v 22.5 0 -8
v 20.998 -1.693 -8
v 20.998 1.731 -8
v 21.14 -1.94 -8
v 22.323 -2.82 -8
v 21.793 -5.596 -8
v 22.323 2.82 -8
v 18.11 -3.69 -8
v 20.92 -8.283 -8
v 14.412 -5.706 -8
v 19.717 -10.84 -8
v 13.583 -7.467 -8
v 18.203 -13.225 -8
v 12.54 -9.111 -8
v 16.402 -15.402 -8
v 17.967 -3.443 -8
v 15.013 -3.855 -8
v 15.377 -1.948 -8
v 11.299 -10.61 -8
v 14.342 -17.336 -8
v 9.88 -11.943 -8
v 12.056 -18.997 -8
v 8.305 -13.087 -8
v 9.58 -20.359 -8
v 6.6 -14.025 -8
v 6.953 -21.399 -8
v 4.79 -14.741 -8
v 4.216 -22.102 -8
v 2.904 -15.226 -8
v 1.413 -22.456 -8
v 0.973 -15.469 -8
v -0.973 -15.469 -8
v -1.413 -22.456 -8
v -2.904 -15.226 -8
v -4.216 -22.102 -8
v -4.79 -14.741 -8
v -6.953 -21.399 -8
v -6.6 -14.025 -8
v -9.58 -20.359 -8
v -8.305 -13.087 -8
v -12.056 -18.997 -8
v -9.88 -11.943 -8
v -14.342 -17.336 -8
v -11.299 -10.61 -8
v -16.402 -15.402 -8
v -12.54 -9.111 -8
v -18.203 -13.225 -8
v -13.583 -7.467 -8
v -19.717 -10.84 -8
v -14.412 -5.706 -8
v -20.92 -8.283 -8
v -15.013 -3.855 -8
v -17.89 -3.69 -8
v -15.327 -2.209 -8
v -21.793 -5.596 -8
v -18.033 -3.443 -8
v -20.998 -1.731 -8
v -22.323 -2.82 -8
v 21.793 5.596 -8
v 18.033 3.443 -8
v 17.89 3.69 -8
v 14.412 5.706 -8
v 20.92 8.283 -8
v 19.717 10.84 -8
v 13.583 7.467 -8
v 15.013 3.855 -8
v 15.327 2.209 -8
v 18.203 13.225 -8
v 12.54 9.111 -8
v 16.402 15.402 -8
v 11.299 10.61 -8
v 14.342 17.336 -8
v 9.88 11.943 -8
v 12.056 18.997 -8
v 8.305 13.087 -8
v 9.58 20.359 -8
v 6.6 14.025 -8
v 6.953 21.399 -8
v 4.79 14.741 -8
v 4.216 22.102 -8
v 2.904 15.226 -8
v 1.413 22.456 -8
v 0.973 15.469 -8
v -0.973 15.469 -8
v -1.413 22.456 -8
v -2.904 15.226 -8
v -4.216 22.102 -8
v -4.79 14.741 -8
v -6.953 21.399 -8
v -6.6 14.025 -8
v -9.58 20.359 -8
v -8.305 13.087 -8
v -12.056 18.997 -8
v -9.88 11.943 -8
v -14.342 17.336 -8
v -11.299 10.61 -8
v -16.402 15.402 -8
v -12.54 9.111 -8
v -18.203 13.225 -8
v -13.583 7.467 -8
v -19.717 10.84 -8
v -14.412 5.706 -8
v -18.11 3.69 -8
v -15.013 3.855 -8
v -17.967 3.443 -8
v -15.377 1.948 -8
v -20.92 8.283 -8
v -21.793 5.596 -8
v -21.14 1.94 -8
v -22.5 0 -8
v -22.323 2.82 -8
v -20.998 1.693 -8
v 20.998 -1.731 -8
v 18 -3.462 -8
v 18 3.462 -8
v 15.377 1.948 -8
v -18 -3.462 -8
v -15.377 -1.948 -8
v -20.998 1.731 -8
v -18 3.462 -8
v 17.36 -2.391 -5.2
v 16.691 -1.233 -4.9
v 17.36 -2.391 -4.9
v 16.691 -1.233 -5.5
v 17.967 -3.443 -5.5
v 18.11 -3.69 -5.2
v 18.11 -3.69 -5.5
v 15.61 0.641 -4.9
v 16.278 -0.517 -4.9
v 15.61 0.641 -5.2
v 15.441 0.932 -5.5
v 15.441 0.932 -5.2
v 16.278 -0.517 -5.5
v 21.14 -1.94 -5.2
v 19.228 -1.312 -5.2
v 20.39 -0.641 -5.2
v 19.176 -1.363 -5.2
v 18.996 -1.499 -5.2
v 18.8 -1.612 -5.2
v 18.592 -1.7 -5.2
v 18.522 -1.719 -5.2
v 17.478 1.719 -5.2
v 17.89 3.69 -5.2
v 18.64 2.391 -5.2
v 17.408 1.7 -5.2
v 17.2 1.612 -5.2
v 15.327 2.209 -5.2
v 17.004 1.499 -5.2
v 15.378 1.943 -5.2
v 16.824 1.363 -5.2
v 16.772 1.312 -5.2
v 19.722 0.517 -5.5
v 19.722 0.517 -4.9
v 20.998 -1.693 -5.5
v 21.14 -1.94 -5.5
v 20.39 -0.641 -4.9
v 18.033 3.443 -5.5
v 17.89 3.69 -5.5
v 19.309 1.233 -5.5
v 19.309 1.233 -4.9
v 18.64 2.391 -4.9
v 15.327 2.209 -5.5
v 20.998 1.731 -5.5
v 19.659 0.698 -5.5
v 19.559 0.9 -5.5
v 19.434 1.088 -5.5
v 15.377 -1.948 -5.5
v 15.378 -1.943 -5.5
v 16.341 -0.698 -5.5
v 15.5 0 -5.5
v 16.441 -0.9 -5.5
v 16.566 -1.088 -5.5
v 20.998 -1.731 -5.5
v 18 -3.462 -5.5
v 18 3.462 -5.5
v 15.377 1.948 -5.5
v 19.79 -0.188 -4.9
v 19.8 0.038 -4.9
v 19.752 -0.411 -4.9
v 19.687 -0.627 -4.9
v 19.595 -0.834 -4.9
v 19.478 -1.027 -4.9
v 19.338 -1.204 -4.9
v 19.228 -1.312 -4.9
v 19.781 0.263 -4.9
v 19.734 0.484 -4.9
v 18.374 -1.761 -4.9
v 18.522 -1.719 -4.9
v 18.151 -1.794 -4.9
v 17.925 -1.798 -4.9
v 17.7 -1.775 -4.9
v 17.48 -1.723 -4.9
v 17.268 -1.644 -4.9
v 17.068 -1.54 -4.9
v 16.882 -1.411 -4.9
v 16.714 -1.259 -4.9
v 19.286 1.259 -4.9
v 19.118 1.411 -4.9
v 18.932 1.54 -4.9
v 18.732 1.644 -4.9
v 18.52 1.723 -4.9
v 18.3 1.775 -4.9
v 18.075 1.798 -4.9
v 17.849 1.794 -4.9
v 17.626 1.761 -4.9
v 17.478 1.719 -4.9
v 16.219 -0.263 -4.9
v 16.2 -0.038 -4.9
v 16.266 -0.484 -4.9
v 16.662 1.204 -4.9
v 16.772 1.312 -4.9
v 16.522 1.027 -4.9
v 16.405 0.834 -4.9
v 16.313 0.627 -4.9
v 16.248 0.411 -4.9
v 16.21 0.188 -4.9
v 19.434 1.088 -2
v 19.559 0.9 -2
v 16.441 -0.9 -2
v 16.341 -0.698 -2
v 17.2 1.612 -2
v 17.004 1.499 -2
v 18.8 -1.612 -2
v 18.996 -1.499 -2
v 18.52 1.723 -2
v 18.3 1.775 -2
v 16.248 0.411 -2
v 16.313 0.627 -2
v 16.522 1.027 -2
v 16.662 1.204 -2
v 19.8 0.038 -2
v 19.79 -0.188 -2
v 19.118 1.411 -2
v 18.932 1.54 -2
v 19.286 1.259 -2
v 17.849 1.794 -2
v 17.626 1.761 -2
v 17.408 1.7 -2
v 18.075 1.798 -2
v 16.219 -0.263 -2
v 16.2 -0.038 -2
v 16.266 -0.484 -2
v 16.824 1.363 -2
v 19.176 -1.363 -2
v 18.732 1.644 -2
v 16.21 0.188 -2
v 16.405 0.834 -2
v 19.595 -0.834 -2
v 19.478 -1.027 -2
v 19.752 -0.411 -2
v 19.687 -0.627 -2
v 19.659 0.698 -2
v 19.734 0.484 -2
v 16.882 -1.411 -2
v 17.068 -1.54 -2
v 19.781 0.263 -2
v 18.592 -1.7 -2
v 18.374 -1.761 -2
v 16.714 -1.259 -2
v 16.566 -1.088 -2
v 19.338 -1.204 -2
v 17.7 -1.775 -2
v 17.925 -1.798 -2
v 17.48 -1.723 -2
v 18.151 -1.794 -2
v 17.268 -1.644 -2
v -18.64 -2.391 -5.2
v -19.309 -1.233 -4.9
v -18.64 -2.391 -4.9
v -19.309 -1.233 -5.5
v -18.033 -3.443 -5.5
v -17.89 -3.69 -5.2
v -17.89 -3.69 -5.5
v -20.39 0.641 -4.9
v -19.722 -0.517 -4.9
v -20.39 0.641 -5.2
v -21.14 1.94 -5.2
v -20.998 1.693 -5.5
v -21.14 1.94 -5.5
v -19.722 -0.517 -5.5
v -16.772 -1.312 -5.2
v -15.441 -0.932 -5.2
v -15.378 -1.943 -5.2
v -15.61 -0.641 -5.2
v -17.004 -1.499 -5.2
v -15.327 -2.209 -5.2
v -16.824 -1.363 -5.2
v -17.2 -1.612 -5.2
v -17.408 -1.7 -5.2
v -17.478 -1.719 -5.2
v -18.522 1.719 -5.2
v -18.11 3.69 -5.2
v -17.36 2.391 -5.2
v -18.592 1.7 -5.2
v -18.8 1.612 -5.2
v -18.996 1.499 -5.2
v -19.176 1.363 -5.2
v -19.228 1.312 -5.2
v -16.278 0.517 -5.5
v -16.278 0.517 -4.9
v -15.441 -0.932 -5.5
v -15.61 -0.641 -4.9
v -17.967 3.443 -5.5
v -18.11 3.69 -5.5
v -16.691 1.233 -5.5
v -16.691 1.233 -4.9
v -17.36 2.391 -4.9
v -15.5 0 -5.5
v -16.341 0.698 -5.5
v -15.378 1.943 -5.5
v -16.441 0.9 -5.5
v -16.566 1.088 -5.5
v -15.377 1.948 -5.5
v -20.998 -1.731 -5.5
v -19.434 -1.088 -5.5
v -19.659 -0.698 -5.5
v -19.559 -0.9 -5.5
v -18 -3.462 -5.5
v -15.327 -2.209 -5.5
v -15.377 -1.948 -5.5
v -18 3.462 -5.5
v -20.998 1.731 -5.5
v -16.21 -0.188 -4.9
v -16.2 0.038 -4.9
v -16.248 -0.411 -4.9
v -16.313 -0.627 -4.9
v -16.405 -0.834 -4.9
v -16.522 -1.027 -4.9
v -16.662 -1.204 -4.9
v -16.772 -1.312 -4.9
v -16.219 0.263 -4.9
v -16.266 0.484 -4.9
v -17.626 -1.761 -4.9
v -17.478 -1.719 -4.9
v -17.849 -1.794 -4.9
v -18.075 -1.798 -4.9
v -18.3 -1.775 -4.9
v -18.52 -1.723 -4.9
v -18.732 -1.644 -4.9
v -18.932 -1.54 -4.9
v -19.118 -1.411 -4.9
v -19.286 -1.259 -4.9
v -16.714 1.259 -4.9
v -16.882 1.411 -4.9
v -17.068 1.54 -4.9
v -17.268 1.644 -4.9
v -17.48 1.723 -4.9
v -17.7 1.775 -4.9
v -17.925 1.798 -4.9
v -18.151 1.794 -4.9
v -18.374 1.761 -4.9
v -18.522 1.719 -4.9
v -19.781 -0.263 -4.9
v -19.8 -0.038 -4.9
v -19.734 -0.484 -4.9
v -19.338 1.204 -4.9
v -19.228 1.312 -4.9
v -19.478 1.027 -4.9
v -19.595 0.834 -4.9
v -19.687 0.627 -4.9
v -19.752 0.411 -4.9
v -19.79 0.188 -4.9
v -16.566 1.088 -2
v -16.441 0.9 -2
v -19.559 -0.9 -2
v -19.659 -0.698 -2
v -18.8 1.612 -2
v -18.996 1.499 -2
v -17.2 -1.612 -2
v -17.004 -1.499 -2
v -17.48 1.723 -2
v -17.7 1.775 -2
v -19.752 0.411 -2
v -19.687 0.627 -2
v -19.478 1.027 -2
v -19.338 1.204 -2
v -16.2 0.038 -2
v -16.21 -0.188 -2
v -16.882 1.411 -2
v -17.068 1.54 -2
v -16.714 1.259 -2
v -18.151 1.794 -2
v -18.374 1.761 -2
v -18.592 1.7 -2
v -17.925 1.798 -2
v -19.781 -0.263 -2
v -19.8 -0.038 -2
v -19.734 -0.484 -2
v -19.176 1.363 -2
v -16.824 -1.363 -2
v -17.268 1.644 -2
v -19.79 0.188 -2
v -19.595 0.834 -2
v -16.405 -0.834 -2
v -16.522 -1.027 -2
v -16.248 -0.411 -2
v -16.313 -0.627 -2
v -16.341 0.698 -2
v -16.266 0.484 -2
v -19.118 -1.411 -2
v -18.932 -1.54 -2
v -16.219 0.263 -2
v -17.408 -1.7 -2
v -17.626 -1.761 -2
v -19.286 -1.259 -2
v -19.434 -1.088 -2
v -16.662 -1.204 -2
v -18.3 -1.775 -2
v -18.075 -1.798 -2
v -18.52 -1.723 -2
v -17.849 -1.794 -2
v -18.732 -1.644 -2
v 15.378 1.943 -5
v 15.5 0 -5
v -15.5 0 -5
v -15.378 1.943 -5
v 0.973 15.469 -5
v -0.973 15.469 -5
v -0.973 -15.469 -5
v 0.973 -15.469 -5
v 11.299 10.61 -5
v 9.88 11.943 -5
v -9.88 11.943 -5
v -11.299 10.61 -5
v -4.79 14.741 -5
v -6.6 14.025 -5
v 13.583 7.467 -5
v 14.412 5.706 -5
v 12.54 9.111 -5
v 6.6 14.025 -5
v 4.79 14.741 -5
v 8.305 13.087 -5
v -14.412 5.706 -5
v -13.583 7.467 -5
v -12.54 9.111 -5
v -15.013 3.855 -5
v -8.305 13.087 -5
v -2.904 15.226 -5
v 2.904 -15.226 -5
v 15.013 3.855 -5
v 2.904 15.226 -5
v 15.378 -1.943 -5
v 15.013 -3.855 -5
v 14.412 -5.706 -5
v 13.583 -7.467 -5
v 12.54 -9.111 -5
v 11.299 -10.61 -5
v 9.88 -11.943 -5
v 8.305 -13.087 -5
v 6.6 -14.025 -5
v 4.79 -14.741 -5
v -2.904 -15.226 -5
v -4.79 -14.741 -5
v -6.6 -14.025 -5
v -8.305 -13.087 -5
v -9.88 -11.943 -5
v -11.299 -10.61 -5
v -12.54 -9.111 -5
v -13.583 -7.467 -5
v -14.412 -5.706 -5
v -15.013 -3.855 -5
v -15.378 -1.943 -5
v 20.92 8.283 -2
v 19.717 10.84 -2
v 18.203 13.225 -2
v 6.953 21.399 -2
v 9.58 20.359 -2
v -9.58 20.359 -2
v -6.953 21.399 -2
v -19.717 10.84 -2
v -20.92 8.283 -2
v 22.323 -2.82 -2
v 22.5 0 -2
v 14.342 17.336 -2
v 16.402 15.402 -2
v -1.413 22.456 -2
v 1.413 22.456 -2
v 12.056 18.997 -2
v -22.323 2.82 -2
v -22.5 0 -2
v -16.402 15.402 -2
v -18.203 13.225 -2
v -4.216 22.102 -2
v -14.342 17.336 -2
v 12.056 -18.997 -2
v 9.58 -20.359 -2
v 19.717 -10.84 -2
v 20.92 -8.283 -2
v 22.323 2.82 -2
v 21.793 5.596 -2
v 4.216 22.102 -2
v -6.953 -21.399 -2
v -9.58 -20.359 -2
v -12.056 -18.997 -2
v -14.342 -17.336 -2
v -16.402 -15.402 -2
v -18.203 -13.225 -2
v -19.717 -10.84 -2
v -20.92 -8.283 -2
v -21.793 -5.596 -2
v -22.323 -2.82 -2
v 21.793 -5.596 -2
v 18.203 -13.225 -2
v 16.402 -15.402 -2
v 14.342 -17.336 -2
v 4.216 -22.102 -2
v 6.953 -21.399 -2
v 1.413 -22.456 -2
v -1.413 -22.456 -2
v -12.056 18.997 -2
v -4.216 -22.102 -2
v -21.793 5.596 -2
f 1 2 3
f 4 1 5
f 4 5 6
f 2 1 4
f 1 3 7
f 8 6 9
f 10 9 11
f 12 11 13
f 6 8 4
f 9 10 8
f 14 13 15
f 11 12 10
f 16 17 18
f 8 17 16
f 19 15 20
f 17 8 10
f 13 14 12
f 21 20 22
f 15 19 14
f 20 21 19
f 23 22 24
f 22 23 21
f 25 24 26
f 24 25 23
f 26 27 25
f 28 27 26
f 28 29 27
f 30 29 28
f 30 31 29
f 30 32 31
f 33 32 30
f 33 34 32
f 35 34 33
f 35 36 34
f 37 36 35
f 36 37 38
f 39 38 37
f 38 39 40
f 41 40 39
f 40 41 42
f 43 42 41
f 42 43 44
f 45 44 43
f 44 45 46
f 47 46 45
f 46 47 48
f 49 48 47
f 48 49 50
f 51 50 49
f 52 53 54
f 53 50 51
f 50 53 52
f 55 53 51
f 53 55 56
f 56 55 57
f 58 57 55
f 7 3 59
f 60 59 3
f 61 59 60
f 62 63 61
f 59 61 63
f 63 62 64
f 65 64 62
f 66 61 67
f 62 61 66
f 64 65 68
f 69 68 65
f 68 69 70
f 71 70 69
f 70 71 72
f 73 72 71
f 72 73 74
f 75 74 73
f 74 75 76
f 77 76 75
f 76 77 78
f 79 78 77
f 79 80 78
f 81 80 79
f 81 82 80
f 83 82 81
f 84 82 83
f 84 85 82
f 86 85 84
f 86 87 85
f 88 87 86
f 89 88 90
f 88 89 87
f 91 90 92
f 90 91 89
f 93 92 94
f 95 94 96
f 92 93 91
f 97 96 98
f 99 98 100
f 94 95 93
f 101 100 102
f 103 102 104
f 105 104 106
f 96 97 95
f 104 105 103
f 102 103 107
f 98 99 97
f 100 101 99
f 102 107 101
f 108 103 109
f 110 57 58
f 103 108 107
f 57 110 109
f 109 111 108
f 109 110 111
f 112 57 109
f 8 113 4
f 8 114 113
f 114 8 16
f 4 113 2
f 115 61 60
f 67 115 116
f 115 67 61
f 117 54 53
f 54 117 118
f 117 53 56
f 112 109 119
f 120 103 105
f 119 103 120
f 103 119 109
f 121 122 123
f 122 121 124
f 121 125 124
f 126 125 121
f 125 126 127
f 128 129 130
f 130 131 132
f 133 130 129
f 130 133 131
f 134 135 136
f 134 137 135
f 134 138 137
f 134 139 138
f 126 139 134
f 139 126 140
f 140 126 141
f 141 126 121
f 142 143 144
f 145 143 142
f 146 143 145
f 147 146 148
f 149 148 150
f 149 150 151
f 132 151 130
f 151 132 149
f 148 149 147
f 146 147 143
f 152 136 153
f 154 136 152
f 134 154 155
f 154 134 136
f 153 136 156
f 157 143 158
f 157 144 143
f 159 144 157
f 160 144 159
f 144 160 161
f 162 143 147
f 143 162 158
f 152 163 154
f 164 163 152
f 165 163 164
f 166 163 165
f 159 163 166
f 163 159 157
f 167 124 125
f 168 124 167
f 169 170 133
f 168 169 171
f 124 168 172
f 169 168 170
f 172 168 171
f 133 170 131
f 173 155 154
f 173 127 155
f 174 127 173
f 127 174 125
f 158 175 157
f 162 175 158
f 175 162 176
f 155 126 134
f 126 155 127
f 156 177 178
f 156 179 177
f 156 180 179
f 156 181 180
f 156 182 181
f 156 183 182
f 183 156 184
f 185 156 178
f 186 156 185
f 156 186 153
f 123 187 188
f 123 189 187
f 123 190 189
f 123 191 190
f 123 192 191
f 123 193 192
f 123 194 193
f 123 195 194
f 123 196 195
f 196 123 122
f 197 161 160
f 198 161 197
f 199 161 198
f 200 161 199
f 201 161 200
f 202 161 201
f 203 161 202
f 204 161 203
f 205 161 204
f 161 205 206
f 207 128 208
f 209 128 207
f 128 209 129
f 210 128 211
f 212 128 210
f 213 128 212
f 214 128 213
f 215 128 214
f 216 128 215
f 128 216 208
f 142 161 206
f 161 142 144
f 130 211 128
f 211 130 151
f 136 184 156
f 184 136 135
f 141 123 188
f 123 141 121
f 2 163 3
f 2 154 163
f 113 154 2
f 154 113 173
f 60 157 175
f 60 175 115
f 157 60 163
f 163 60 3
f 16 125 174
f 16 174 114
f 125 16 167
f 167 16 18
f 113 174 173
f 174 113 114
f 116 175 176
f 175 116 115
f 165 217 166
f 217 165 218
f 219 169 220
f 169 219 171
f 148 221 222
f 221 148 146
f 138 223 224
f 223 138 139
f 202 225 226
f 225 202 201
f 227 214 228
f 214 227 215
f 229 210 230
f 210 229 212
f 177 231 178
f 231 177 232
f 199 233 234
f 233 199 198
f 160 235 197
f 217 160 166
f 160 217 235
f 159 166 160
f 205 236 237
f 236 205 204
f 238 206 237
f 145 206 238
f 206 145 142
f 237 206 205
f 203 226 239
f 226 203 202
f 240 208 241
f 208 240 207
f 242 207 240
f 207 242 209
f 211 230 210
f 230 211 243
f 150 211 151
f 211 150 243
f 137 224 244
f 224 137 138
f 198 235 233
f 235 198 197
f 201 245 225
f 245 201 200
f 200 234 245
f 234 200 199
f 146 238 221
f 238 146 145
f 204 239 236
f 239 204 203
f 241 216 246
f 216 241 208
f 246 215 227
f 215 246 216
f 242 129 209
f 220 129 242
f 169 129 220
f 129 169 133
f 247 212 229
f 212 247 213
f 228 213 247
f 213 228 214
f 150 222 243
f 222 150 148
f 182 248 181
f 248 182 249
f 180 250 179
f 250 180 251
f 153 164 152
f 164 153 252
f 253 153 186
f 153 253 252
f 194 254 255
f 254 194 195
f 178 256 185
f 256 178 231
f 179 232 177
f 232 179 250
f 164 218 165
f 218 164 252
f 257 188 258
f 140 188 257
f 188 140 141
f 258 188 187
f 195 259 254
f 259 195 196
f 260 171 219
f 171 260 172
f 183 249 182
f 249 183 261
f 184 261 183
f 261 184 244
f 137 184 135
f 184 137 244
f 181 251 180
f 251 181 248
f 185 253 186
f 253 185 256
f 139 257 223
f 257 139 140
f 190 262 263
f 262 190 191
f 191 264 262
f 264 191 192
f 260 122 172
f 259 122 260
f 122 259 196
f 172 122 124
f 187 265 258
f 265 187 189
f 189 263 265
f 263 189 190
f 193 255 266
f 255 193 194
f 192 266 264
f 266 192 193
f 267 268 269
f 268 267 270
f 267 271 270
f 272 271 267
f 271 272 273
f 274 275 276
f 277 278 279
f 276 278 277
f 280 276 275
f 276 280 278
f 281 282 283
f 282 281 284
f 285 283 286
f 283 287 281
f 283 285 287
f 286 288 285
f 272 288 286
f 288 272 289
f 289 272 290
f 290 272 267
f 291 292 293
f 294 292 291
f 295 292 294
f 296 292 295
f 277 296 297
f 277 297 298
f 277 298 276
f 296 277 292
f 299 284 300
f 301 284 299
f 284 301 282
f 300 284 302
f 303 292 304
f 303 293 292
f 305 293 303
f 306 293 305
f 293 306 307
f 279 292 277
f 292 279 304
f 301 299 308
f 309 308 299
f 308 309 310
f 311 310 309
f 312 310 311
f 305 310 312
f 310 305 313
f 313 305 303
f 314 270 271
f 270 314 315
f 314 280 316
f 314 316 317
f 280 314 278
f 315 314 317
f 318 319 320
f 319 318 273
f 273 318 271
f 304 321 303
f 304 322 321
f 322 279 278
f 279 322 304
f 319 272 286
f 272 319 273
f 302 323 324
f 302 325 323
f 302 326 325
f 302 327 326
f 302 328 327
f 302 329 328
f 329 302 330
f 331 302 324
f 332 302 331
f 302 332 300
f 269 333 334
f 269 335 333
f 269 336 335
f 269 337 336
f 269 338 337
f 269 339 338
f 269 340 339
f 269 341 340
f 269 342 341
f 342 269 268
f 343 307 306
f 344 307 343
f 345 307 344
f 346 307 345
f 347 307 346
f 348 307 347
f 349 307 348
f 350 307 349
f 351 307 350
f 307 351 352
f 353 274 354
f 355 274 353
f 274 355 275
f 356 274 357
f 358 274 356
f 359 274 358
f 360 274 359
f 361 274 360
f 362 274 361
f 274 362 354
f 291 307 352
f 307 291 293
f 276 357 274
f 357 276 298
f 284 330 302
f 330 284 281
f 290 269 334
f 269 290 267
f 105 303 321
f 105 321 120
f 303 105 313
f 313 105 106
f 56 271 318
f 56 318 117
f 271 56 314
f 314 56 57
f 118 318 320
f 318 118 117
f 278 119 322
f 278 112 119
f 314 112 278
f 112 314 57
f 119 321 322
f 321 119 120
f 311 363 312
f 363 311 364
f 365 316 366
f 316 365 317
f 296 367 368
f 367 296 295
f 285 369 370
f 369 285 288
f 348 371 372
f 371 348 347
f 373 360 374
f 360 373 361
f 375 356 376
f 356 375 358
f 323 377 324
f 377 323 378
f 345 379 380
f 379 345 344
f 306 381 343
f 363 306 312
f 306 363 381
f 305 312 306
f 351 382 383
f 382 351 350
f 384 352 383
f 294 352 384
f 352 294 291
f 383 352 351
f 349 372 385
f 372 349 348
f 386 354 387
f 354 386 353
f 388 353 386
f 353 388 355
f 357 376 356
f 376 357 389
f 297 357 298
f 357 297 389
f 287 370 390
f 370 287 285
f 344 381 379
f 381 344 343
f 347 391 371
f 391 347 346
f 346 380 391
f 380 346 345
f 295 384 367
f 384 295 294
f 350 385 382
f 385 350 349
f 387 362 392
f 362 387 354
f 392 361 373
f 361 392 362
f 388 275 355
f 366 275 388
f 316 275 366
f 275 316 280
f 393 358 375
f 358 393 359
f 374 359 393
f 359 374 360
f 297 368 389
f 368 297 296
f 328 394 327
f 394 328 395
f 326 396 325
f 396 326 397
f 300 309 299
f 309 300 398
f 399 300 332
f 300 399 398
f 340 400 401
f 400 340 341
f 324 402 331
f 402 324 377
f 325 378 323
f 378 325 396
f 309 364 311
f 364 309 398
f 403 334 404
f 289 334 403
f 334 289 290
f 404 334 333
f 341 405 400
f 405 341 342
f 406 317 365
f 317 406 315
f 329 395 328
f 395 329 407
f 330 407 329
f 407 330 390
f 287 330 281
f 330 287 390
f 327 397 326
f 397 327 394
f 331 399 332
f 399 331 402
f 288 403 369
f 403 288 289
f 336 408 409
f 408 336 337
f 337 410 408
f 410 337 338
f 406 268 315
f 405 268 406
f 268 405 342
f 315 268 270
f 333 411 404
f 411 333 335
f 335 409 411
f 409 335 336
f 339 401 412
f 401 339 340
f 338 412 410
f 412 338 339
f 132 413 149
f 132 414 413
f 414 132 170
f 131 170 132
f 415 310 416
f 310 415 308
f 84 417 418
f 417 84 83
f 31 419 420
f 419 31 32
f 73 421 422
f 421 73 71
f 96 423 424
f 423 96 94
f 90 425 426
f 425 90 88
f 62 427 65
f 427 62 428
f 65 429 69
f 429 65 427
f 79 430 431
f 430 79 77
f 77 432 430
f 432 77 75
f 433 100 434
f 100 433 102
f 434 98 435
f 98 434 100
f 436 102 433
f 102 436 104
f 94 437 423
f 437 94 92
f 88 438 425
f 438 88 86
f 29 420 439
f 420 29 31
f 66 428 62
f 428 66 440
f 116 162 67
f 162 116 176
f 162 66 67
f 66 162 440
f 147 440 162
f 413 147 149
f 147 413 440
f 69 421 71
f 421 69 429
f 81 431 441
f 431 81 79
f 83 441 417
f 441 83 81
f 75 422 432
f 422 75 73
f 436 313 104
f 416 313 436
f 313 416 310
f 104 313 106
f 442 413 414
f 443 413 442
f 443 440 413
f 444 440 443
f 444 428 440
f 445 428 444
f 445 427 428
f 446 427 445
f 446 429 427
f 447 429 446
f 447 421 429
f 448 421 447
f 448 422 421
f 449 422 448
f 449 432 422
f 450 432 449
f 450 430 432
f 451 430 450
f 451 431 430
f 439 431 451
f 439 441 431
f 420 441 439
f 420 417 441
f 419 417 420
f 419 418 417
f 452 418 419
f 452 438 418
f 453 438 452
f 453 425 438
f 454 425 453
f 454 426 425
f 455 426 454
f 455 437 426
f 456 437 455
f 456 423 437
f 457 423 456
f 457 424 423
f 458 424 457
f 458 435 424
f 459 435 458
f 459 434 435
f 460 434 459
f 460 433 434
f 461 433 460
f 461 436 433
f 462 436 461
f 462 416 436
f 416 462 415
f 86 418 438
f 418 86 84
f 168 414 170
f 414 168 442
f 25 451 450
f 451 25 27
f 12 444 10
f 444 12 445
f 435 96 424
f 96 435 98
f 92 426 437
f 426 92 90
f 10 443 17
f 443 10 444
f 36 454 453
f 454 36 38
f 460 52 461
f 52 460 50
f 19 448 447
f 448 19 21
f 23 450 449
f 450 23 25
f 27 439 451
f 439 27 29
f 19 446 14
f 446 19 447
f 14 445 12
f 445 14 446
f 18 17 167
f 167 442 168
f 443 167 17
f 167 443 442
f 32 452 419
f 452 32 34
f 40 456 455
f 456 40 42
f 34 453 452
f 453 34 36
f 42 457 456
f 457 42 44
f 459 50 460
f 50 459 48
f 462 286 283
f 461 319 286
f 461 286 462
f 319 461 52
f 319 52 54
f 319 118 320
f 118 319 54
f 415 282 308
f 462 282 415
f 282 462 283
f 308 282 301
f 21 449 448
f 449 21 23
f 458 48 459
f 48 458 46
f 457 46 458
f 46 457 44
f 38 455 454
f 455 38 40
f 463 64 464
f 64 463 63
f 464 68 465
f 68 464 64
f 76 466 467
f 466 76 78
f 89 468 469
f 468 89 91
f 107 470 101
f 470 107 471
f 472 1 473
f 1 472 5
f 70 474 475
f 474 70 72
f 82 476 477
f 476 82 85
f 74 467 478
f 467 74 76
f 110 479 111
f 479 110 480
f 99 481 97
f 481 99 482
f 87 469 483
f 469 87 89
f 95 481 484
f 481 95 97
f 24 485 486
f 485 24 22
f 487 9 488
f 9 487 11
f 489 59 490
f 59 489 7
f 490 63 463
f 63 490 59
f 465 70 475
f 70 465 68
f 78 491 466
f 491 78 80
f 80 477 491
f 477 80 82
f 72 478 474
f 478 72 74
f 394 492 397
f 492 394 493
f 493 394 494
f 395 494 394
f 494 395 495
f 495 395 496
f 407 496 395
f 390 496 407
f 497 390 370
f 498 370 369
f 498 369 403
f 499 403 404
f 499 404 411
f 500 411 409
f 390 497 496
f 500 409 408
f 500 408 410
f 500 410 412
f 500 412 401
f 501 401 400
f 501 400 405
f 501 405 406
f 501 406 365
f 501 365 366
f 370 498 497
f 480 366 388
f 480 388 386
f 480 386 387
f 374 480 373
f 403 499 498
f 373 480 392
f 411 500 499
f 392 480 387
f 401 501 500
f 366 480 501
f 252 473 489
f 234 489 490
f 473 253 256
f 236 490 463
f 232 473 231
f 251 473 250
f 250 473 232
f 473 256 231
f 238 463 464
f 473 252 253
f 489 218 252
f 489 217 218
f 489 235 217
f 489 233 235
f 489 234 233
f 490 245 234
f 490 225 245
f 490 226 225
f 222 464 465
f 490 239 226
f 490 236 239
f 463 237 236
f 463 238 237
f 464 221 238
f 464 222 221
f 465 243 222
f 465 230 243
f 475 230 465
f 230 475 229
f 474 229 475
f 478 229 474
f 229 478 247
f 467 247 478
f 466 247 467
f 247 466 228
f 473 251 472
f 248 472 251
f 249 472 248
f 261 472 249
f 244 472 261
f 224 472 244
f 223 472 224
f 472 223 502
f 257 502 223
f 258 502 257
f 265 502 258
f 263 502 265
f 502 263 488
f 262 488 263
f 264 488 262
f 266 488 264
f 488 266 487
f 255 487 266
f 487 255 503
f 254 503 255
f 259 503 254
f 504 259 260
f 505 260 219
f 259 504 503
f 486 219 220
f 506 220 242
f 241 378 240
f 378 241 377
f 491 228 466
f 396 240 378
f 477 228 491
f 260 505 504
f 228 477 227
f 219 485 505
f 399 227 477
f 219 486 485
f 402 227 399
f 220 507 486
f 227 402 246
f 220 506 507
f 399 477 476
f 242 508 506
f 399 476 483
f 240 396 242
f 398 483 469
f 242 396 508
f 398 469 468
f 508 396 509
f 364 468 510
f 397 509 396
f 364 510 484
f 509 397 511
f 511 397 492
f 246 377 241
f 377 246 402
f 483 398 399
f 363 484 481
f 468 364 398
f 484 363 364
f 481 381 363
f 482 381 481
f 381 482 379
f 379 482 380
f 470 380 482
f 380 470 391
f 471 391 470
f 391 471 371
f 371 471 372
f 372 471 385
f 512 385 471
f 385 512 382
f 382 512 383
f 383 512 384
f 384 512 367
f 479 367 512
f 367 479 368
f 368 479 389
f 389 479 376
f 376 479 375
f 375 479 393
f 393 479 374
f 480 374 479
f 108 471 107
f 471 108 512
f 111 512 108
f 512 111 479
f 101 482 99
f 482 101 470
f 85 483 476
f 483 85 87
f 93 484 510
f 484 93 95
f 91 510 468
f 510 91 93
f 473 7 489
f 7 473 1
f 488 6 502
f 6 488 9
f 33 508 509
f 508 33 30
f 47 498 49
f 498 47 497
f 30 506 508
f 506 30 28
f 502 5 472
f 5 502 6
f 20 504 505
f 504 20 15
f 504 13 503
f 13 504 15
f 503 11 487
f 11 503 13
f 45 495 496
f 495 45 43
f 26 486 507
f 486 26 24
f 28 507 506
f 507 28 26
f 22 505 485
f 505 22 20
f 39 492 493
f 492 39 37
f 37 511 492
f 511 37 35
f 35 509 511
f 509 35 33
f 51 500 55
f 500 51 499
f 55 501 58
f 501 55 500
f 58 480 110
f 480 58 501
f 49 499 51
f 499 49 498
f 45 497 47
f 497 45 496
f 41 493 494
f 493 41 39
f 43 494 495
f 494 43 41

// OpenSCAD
$fn = 50;


difference() {
	union() {
		translate(v = [0, 0, -8.0000000000]) {
			cylinder(h = 6, r = 22.5000000000);
		}
	}
	union() {
		translate(v = [18.0000000000, 0, 2.0000000000]) {
			rotate(a = [0, 0, 30.0000000000]) {
				difference() {
					union() {
						translate(v = [0, 0, -10.0000000000]) {
							rotate(a = [0, 0, 0]) {
								difference() {
									union() {
										#translate(v = [-1.7500000000, -3.2500000000, -0.3000000000]) {
											cube(size = [3.5000000000, 6.5000000000, 0.3000000000]);
										}
										#translate(v = [-1.7500000000, -1.7500000000, -0.6000000000]) {
											cube(size = [3.5000000000, 3.5000000000, 0.3000000000]);
										}
										#translate(v = [-1.7500000000, -3.2500000000, 2.5000000000]) {
											cube(size = [3.5000000000, 6.5000000000, 0.3000000000]);
										}
										#translate(v = [-1.7500000000, -1.7500000000, 2.8000000000]) {
											cube(size = [3.5000000000, 3.5000000000, 0.3000000000]);
										}
										#linear_extrude(height = 2.5000000000) {
											polygon(points = [[3.4620000000, 0.0000000000], [1.7310000000, 2.9981799479], [-1.7310000000, 2.9981799479], [-3.4620000000, 0.0000000000], [-1.7310000000, -2.9981799479], [1.7310000000, -2.9981799479]]);
										}
										#translate(v = [-1.7500000000, -3.2500000000, -0.3000000000]) {
											cube(size = [3.5000000000, 6.5000000000, 0.3000000000]);
										}
										#translate(v = [-1.7500000000, -1.7500000000, -0.6000000000]) {
											cube(size = [3.5000000000, 3.5000000000, 0.3000000000]);
										}
										#translate(v = [-1.7500000000, -3.2500000000, 2.5000000000]) {
											cube(size = [3.5000000000, 6.5000000000, 0.3000000000]);
										}
										#translate(v = [-1.7500000000, -1.7500000000, 2.8000000000]) {
											cube(size = [3.5000000000, 3.5000000000, 0.3000000000]);
										}
										#translate(v = [-1.7500000000, -3.2500000000, -0.3000000000]) {
											cube(size = [3.5000000000, 6.5000000000, 0.3000000000]);
										}
										#translate(v = [-1.7500000000, -1.7500000000, -0.6000000000]) {
											cube(size = [3.5000000000, 3.5000000000, 0.3000000000]);
										}
										#translate(v = [-1.7500000000, -3.2500000000, 2.5000000000]) {
											cube(size = [3.5000000000, 6.5000000000, 0.3000000000]);
										}
										#translate(v = [-1.7500000000, -1.7500000000, 2.8000000000]) {
											cube(size = [3.5000000000, 3.5000000000, 0.3000000000]);
										}
									}
									union();
								}
							}
						}
						translate(v = [0, 0, -10.0000000000]) {
							rotate(a = [0, 0, 0]) {
								difference() {
									union() {
										#translate(v = [-1.7500000000, -3.2500000000, -0.3000000000]) {
											cube(size = [3.5000000000, 6.5000000000, 0.3000000000]);
										}
										#translate(v = [-1.7500000000, -1.7500000000, -0.6000000000]) {
											cube(size = [3.5000000000, 3.5000000000, 0.3000000000]);
										}
										#translate(v = [-1.7500000000, -3.2500000000, 2.5000000000]) {
											cube(size = [3.5000000000, 6.5000000000, 0.3000000000]);
										}
										#translate(v = [-1.7500000000, -1.7500000000, 2.8000000000]) {
											cube(size = [3.5000000000, 3.5000000000, 0.3000000000]);
										}
										#linear_extrude(height = 2.5000000000) {
											polygon(points = [[3.4620000000, 0.0000000000], [1.7310000000, 2.9981799479], [-1.7310000000, 2.9981799479], [-3.4620000000, 0.0000000000], [-1.7310000000, -2.9981799479], [1.7310000000, -2.9981799479]]);
										}
										#translate(v = [-1.7500000000, -3.2500000000, -0.3000000000]) {
											cube(size = [3.5000000000, 6.5000000000, 0.3000000000]);
										}
										#translate(v = [-1.7500000000, -1.7500000000, -0.6000000000]) {
											cube(size = [3.5000000000, 3.5000000000, 0.3000000000]);
										}
										#translate(v = [-1.7500000000, -3.2500000000, 2.5000000000]) {
											cube(size = [3.5000000000, 6.5000000000, 0.3000000000]);
										}
										#translate(v = [-1.7500000000, -1.7500000000, 2.8000000000]) {
											cube(size = [3.5000000000, 3.5000000000, 0.3000000000]);
										}
										#translate(v = [-1.7500000000, -3.2500000000, -0.3000000000]) {
											cube(size = [3.5000000000, 6.5000000000, 0.3000000000]);
										}
										#translate(v = [-1.7500000000, -1.7500000000, -0.6000000000]) {
											cube(size = [3.5000000000, 3.5000000000, 0.3000000000]);
										}
										#translate(v = [-1.7500000000, -3.2500000000, 2.5000000000]) {
											cube(size = [3.5000000000, 6.5000000000, 0.3000000000]);
										}
										#translate(v = [-1.7500000000, -1.7500000000, 2.8000000000]) {
											cube(size = [3.5000000000, 3.5000000000, 0.3000000000]);
										}
									}
									union();
								}
							}
						}
						translate(v = [0, 0, -10.0000000000]) {
							rotate(a = [0, 0, 0]) {
								difference() {
									union() {
										#translate(v = [-1.7500000000, -3.2500000000, -0.3000000000]) {
											cube(size = [3.5000000000, 6.5000000000, 0.3000000000]);
										}
										#translate(v = [-1.7500000000, -1.7500000000, -0.6000000000]) {
											cube(size = [3.5000000000, 3.5000000000, 0.3000000000]);
										}
										#translate(v = [-1.7500000000, -3.2500000000, 2.5000000000]) {
											cube(size = [3.5000000000, 6.5000000000, 0.3000000000]);
										}
										#translate(v = [-1.7500000000, -1.7500000000, 2.8000000000]) {
											cube(size = [3.5000000000, 3.5000000000, 0.3000000000]);
										}
										#linear_extrude(height = 2.5000000000) {
											polygon(points = [[3.4620000000, 0.0000000000], [1.7310000000, 2.9981799479], [-1.7310000000, 2.9981799479], [-3.4620000000, 0.0000000000], [-1.7310000000, -2.9981799479], [1.7310000000, -2.9981799479]]);
										}
										#translate(v = [-1.7500000000, -3.2500000000, -0.3000000000]) {
											cube(size = [3.5000000000, 6.5000000000, 0.3000000000]);
										}
										#translate(v = [-1.7500000000, -1.7500000000, -0.6000000000]) {
											cube(size = [3.5000000000, 3.5000000000, 0.3000000000]);
										}
										#translate(v = [-1.7500000000, -3.2500000000, 2.5000000000]) {
											cube(size = [3.5000000000, 6.5000000000, 0.3000000000]);
										}
										#translate(v = [-1.7500000000, -1.7500000000, 2.8000000000]) {
											cube(size = [3.5000000000, 3.5000000000, 0.3000000000]);
										}
										#translate(v = [-1.7500000000, -3.2500000000, -0.3000000000]) {
											cube(size = [3.5000000000, 6.5000000000, 0.3000000000]);
										}
										#translate(v = [-1.7500000000, -1.7500000000, -0.6000000000]) {
											cube(size = [3.5000000000, 3.5000000000, 0.3000000000]);
										}
										#translate(v = [-1.7500000000, -3.2500000000, 2.5000000000]) {
											cube(size = [3.5000000000, 6.5000000000, 0.3000000000]);
										}
										#translate(v = [-1.7500000000, -1.7500000000, 2.8000000000]) {
											cube(size = [3.5000000000, 3.5000000000, 0.3000000000]);
										}
									}
									union();
								}
							}
						}
						#translate(v = [0, 0, -10.0000000000]) {
							cylinder(h = 10, r = 1.5000000000);
						}
						#translate(v = [0, 0, -1.9000000000]) {
							cylinder(h = 1.9000000000, r1 = 1.8000000000, r2 = 3.6000000000);
						}
						#translate(v = [0, 0, -10.0000000000]) {
							cylinder(h = 10, r = 1.8000000000);
						}
						#translate(v = [0, 0, -10.0000000000]) {
							cylinder(h = 10, r = 1.5000000000);
						}
					}
					union();
				}
			}
		}
		translate(v = [-18.0000000000, 0, 2.0000000000]) {
			rotate(a = [0, 0, 30.0000000000]) {
				difference() {
					union() {
						translate(v = [0, 0, -10.0000000000]) {
							rotate(a = [0, 0, 0]) {
								difference() {
									union() {
										#translate(v = [-1.7500000000, -3.2500000000, -0.3000000000]) {
											cube(size = [3.5000000000, 6.5000000000, 0.3000000000]);
										}
										#translate(v = [-1.7500000000, -1.7500000000, -0.6000000000]) {
											cube(size = [3.5000000000, 3.5000000000, 0.3000000000]);
										}
										#translate(v = [-1.7500000000, -3.2500000000, 2.5000000000]) {
											cube(size = [3.5000000000, 6.5000000000, 0.3000000000]);
										}
										#translate(v = [-1.7500000000, -1.7500000000, 2.8000000000]) {
											cube(size = [3.5000000000, 3.5000000000, 0.3000000000]);
										}
										#linear_extrude(height = 2.5000000000) {
											polygon(points = [[3.4620000000, 0.0000000000], [1.7310000000, 2.9981799479], [-1.7310000000, 2.9981799479], [-3.4620000000, 0.0000000000], [-1.7310000000, -2.9981799479], [1.7310000000, -2.9981799479]]);
										}
										#translate(v = [-1.7500000000, -3.2500000000, -0.3000000000]) {
											cube(size = [3.5000000000, 6.5000000000, 0.3000000000]);
										}
										#translate(v = [-1.7500000000, -1.7500000000, -0.6000000000]) {
											cube(size = [3.5000000000, 3.5000000000, 0.3000000000]);
										}
										#translate(v = [-1.7500000000, -3.2500000000, 2.5000000000]) {
											cube(size = [3.5000000000, 6.5000000000, 0.3000000000]);
										}
										#translate(v = [-1.7500000000, -1.7500000000, 2.8000000000]) {
											cube(size = [3.5000000000, 3.5000000000, 0.3000000000]);
										}
										#translate(v = [-1.7500000000, -3.2500000000, -0.3000000000]) {
											cube(size = [3.5000000000, 6.5000000000, 0.3000000000]);
										}
										#translate(v = [-1.7500000000, -1.7500000000, -0.6000000000]) {
											cube(size = [3.5000000000, 3.5000000000, 0.3000000000]);
										}
										#translate(v = [-1.7500000000, -3.2500000000, 2.5000000000]) {
											cube(size = [3.5000000000, 6.5000000000, 0.3000000000]);
										}
										#translate(v = [-1.7500000000, -1.7500000000, 2.8000000000]) {
											cube(size = [3.5000000000, 3.5000000000, 0.3000000000]);
										}
									}
									union();
								}
							}
						}
						translate(v = [0, 0, -10.0000000000]) {
							rotate(a = [0, 0, 0]) {
								difference() {
									union() {
										#translate(v = [-1.7500000000, -3.2500000000, -0.3000000000]) {
											cube(size = [3.5000000000, 6.5000000000, 0.3000000000]);
										}
										#translate(v = [-1.7500000000, -1.7500000000, -0.6000000000]) {
											cube(size = [3.5000000000, 3.5000000000, 0.3000000000]);
										}
										#translate(v = [-1.7500000000, -3.2500000000, 2.5000000000]) {
											cube(size = [3.5000000000, 6.5000000000, 0.3000000000]);
										}
										#translate(v = [-1.7500000000, -1.7500000000, 2.8000000000]) {
											cube(size = [3.5000000000, 3.5000000000, 0.3000000000]);
										}
										#linear_extrude(height = 2.5000000000) {
											polygon(points = [[3.4620000000, 0.0000000000], [1.7310000000, 2.9981799479], [-1.7310000000, 2.9981799479], [-3.4620000000, 0.0000000000], [-1.7310000000, -2.9981799479], [1.7310000000, -2.9981799479]]);
										}
										#translate(v = [-1.7500000000, -3.2500000000, -0.3000000000]) {
											cube(size = [3.5000000000, 6.5000000000, 0.3000000000]);
										}
										#translate(v = [-1.7500000000, -1.7500000000, -0.6000000000]) {
											cube(size = [3.5000000000, 3.5000000000, 0.3000000000]);
										}
										#translate(v = [-1.7500000000, -3.2500000000, 2.5000000000]) {
											cube(size = [3.5000000000, 6.5000000000, 0.3000000000]);
										}
										#translate(v = [-1.7500000000, -1.7500000000, 2.8000000000]) {
											cube(size = [3.5000000000, 3.5000000000, 0.3000000000]);
										}
										#translate(v = [-1.7500000000, -3.2500000000, -0.3000000000]) {
											cube(size = [3.5000000000, 6.5000000000, 0.3000000000]);
										}
										#translate(v = [-1.7500000000, -1.7500000000, -0.6000000000]) {
											cube(size = [3.5000000000, 3.5000000000, 0.3000000000]);
										}
										#translate(v = [-1.7500000000, -3.2500000000, 2.5000000000]) {
											cube(size = [3.5000000000, 6.5000000000, 0.3000000000]);
										}
										#translate(v = [-1.7500000000, -1.7500000000, 2.8000000000]) {
											cube(size = [3.5000000000, 3.5000000000, 0.3000000000]);
										}
									}
									union();
								}
							}
						}
						translate(v = [0, 0, -10.0000000000]) {
							rotate(a = [0, 0, 0]) {
								difference() {
									union() {
										#translate(v = [-1.7500000000, -3.2500000000, -0.3000000000]) {
											cube(size = [3.5000000000, 6.5000000000, 0.3000000000]);
										}
										#translate(v = [-1.7500000000, -1.7500000000, -0.6000000000]) {
											cube(size = [3.5000000000, 3.5000000000, 0.3000000000]);
										}
										#translate(v = [-1.7500000000, -3.2500000000, 2.5000000000]) {
											cube(size = [3.5000000000, 6.5000000000, 0.3000000000]);
										}
										#translate(v = [-1.7500000000, -1.7500000000, 2.8000000000]) {
											cube(size = [3.5000000000, 3.5000000000, 0.3000000000]);
										}
										#linear_extrude(height = 2.5000000000) {
											polygon(points = [[3.4620000000, 0.0000000000], [1.7310000000, 2.9981799479], [-1.7310000000, 2.9981799479], [-3.4620000000, 0.0000000000], [-1.7310000000, -2.9981799479], [1.7310000000, -2.9981799479]]);
										}
										#translate(v = [-1.7500000000, -3.2500000000, -0.3000000000]) {
											cube(size = [3.5000000000, 6.5000000000, 0.3000000000]);
										}
										#translate(v = [-1.7500000000, -1.7500000000, -0.6000000000]) {
											cube(size = [3.5000000000, 3.5000000000, 0.3000000000]);
										}
										#translate(v = [-1.7500000000, -3.2500000000, 2.5000000000]) {
											cube(size = [3.5000000000, 6.5000000000, 0.3000000000]);
										}
										#translate(v = [-1.7500000000, -1.7500000000, 2.8000000000]) {
											cube(size = [3.5000000000, 3.5000000000, 0.3000000000]);
										}
										#translate(v = [-1.7500000000, -3.2500000000, -0.3000000000]) {
											cube(size = [3.5000000000, 6.5000000000, 0.3000000000]);
										}
										#translate(v = [-1.7500000000, -1.7500000000, -0.6000000000]) {
											cube(size = [3.5000000000, 3.5000000000, 0.3000000000]);
										}
										#translate(v = [-1.7500000000, -3.2500000000, 2.5000000000]) {
											cube(size = [3.5000000000, 6.5000000000, 0.3000000000]);
										}
										#translate(v = [-1.7500000000, -1.7500000000, 2.8000000000]) {
											cube(size = [3.5000000000, 3.5000000000, 0.3000000000]);
										}
									}
									union();
								}
							}
						}
						#translate(v = [0, 0, -10.0000000000]) {
							cylinder(h = 10, r = 1.5000000000);
						}
						#translate(v = [0, 0, -1.9000000000]) {
							cylinder(h = 1.9000000000, r1 = 1.8000000000, r2 = 3.6000000000);
						}
						#translate(v = [0, 0, -10.0000000000]) {
							cylinder(h = 10, r = 1.8000000000);
						}
						#translate(v = [0, 0, -10.0000000000]) {
							cylinder(h = 10, r = 1.5000000000);
						}
					}
					union();
				}
			}
		}
		#translate(v = [0, 0, -8.0000000000]) {
			cylinder(h = 3, r = 15.5000000000);
		}
	}
}
